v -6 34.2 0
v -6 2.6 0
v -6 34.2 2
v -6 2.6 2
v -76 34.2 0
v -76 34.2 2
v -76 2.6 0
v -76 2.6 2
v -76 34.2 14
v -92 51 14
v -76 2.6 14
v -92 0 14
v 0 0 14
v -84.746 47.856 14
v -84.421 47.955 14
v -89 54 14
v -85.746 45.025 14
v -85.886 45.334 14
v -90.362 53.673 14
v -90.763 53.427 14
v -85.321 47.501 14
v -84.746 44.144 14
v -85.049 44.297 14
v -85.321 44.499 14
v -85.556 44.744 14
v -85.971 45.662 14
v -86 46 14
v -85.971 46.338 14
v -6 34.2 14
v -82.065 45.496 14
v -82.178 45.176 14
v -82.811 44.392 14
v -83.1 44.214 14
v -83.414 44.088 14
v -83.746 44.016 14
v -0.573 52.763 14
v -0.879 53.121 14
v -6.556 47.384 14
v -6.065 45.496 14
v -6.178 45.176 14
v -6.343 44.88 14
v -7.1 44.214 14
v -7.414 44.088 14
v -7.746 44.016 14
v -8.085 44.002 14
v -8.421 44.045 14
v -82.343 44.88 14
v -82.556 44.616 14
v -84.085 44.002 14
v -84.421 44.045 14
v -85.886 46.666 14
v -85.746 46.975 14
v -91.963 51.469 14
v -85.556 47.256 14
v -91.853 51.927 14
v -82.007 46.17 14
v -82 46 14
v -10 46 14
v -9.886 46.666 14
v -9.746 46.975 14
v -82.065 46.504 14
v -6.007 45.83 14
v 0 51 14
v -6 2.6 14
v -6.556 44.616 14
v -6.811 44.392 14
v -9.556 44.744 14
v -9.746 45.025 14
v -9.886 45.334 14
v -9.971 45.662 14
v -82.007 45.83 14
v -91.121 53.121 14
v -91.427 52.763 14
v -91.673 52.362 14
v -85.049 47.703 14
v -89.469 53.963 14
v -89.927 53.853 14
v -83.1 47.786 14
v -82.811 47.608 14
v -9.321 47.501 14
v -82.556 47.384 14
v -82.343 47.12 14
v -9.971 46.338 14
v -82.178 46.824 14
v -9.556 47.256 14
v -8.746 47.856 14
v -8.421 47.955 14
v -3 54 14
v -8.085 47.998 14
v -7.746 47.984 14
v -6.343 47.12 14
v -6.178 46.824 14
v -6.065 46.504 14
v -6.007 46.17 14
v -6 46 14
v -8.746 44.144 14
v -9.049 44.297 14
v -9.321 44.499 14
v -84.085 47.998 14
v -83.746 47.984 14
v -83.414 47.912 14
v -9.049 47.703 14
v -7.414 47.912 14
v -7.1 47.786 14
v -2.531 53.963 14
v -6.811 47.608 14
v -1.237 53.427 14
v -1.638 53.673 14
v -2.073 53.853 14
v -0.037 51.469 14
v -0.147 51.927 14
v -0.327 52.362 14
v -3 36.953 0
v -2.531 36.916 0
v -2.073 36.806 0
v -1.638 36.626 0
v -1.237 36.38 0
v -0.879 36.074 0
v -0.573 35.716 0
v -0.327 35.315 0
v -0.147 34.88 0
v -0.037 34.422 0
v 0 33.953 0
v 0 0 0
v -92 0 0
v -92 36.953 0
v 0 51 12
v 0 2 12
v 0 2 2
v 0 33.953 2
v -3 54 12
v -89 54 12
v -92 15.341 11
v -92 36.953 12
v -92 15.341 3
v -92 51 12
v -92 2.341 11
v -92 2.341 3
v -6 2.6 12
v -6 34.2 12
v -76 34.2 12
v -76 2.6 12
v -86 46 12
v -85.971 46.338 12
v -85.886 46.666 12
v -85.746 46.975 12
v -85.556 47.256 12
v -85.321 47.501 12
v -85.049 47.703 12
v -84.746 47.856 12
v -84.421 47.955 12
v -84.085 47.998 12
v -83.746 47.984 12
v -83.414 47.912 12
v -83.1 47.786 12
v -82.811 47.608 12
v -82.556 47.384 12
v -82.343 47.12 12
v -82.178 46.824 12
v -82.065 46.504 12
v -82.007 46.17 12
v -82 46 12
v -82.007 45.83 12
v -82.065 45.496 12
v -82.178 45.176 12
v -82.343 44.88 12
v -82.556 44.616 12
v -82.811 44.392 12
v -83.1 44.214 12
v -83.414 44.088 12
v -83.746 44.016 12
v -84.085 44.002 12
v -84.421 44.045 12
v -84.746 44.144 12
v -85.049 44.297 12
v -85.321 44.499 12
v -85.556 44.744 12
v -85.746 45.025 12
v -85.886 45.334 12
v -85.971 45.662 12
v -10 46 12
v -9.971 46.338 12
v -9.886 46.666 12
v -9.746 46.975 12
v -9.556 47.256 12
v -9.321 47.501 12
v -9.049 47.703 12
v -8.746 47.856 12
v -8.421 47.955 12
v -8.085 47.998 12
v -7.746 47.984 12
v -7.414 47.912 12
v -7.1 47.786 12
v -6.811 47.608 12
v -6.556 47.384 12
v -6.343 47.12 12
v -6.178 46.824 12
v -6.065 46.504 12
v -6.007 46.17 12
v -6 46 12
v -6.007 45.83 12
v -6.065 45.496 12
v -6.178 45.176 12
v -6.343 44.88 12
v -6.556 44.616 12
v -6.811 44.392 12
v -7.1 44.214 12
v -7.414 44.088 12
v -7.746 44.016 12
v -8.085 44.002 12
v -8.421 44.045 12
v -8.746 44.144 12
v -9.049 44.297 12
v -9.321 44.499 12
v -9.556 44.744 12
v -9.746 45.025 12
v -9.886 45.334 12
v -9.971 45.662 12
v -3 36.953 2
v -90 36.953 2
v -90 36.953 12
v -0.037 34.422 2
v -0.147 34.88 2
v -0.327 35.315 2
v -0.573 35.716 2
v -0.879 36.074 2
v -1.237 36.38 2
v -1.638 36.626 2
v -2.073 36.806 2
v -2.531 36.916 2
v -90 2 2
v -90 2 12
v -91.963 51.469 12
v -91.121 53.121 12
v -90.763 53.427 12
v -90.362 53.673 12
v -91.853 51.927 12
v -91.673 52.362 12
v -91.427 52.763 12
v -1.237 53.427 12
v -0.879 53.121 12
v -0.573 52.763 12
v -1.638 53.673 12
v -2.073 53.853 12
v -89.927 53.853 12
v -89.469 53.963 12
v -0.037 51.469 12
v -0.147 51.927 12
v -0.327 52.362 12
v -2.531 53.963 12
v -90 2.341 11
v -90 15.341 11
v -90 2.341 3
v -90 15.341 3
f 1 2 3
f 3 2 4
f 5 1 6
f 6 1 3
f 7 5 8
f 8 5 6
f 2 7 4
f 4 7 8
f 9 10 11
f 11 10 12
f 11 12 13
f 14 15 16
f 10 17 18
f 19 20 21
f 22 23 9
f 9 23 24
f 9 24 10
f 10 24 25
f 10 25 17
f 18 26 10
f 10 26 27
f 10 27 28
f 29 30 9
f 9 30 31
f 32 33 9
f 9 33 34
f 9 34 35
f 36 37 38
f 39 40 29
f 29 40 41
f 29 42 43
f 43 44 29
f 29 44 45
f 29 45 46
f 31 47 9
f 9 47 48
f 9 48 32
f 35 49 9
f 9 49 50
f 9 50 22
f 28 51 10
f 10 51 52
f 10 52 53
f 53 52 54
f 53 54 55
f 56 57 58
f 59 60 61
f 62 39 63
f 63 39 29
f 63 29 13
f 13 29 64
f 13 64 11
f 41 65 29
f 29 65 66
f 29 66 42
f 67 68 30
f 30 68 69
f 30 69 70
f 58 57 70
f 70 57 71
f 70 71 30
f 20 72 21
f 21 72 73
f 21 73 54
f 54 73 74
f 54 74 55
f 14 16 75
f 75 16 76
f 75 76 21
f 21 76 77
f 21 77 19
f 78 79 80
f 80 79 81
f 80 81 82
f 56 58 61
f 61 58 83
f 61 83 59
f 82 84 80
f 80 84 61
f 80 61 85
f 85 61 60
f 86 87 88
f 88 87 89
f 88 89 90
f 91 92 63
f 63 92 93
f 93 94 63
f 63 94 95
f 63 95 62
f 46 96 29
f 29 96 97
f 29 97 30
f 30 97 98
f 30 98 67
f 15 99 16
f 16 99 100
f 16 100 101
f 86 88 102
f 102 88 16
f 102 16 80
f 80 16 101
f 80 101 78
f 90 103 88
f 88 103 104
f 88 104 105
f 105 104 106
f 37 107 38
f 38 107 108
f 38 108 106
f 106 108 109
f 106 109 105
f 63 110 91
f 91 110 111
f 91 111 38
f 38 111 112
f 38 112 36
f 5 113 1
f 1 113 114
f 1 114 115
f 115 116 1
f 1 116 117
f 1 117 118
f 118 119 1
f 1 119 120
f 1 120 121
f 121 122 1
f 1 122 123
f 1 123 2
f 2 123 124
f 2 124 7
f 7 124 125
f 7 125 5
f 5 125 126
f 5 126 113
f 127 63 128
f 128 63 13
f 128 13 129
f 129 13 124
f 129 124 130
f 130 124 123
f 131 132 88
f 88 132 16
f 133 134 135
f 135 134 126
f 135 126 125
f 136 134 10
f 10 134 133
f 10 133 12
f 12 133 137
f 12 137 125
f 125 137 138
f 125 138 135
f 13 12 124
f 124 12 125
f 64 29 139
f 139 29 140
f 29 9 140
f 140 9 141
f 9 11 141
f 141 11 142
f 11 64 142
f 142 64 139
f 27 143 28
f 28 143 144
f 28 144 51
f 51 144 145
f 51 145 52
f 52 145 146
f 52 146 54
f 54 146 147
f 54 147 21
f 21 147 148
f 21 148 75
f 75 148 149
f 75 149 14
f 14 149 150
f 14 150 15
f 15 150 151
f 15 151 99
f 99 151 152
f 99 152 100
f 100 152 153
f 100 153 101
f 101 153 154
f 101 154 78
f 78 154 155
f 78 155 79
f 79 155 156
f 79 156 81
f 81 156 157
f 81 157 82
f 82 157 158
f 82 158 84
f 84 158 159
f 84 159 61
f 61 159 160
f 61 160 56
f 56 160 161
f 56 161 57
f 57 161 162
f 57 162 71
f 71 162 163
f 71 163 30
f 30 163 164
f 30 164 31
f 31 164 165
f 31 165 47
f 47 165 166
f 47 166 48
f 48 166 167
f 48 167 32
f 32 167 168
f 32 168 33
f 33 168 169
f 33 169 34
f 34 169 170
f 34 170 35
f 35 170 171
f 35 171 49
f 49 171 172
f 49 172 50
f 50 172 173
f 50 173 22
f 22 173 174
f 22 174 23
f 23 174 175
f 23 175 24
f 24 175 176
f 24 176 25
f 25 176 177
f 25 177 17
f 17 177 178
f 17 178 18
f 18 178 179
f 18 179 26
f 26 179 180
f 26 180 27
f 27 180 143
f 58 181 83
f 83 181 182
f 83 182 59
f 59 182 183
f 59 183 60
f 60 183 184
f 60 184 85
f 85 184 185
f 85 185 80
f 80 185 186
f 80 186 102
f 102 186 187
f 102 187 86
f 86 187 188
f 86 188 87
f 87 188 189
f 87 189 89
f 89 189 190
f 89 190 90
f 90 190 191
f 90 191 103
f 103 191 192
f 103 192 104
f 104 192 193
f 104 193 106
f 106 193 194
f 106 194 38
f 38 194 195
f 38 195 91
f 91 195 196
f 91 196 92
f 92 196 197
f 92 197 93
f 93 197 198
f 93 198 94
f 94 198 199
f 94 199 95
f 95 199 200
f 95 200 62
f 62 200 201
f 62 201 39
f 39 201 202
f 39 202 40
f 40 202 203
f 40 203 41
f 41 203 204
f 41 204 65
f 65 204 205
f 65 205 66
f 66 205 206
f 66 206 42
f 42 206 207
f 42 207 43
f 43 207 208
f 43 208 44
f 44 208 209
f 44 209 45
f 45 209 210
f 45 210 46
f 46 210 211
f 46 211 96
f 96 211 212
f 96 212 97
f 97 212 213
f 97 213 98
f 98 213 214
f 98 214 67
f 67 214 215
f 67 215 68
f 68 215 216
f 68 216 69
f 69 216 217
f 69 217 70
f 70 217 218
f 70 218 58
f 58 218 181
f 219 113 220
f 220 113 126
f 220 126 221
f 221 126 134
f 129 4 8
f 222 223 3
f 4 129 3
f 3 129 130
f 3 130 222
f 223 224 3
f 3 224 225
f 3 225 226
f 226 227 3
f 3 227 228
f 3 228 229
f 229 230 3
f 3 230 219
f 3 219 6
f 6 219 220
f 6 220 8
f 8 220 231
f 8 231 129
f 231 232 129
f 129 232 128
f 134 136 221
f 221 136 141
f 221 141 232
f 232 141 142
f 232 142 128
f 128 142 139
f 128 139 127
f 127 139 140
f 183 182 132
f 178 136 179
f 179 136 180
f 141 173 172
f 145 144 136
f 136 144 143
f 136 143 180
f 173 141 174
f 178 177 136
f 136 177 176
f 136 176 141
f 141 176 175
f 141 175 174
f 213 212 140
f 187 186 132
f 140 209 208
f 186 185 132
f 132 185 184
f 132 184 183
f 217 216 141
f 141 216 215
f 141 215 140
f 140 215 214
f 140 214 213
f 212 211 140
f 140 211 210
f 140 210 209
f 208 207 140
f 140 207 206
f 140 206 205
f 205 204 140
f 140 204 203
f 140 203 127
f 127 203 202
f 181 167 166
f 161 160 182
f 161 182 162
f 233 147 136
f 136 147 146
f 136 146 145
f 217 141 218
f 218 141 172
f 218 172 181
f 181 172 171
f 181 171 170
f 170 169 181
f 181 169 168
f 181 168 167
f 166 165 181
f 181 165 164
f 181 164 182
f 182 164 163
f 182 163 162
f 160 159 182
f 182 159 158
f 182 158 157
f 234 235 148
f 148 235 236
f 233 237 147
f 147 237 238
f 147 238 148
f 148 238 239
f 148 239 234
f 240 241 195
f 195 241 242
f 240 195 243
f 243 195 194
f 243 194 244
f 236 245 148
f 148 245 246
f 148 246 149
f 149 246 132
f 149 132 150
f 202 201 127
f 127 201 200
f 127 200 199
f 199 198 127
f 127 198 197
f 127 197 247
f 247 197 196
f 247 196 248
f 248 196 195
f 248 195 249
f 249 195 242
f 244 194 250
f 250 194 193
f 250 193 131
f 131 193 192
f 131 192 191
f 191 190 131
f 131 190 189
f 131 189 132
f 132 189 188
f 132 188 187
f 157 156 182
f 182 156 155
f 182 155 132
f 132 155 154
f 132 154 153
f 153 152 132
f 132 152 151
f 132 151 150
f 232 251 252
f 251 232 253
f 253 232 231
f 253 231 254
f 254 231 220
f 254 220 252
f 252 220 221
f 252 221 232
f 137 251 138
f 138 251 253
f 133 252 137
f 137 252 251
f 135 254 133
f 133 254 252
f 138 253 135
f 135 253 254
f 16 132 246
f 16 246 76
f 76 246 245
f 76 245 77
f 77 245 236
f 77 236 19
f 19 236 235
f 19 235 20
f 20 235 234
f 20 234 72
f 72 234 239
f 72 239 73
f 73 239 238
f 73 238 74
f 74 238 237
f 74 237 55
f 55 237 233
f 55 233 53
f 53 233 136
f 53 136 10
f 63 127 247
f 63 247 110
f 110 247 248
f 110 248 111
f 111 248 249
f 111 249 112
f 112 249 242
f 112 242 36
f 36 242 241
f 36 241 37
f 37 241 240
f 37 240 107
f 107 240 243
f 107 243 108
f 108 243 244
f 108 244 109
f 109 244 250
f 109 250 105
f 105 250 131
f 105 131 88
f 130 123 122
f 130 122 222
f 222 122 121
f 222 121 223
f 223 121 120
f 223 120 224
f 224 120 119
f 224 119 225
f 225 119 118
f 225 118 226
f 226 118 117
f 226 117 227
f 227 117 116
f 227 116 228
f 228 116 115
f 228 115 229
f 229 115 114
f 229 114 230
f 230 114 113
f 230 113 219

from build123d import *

# Parameters (mm, degrees)
CROQUIS1_W              = 92
CROQUIS1_H              = 54
CROQUIS1_R              = 2
CROQUIS1_W_2            = 70
CROQUIS1_H_2            = 31.6
SALIENTE_EXTRUIR1_DEPTH = 14
CORTAR_EXTRUIR1_DEPTH   = 90
CROQUIS3_W              = 2
CROQUIS3_H              = 17.046925302
CORTAR_EXTRUIR2_DEPTH   = 12
CROQUIS4_W              = 8
CROQUIS4_H              = 13
CORTAR_EXTRUIR3_DEPTH   = 2
REDONDEO1_R             = 3
REDONDEO2_R             = 3
REDONDEO3_R             = 3


with BuildPart() as part:
    # Croquis1 → Saliente-Extruir1 (new body)
    with BuildSketch(Plane.XY):
        with Locations((-46, 27)):
            Rectangle(CROQUIS1_W, CROQUIS1_H)
        with Locations((-84, 46)):
            Circle(CROQUIS1_R, mode=Mode.SUBTRACT)
        with Locations((-8, 46)):
            Circle(CROQUIS1_R, mode=Mode.SUBTRACT)
        with Locations((-41, 18.4)):
            Rectangle(CROQUIS1_W_2, CROQUIS1_H_2, mode=Mode.SUBTRACT)
    extrude(amount=SALIENTE_EXTRUIR1_DEPTH)

    # Croquis2 → Cortar-Extruir1 (cut)
    with BuildSketch(Plane(origin=(0, 0, 0), x_dir=(0, 0, -1), z_dir=(1, 0, 0))):
        Polygon((-2, 36.953074698), (-2, 2), (-12, 2), (-12, 36.953074698), (-12, 54), (-2, 54), (0, 54), (0, 36.953074698), align=None)
    extrude(amount=-CORTAR_EXTRUIR1_DEPTH, mode=Mode.SUBTRACT)

    # Croquis3 → Cortar-Extruir2 (cut)
    with BuildSketch(Plane(origin=(0, 0, 0), x_dir=(-1, 0, 0), z_dir=(0, 0, -1))):
        with Locations((91, 45.476537349)):
            Rectangle(CROQUIS3_W, CROQUIS3_H)
    extrude(amount=-CORTAR_EXTRUIR2_DEPTH, mode=Mode.SUBTRACT)

    # Croquis4 → Cortar-Extruir3 (cut)
    with BuildSketch(Plane.ZY.offset(92)):
        with Locations((7, 8.840884816)):
            Rectangle(CROQUIS4_W, CROQUIS4_H)
    extrude(amount=-CORTAR_EXTRUIR3_DEPTH, mode=Mode.SUBTRACT)

    # Redondeo1
    redondeo1_edges = [part.edges().sort_by_distance(p)[0] for p in [
        (-92, 54, 13),
    ]]
    fillet(redondeo1_edges, radius=REDONDEO1_R)

    # Redondeo2
    redondeo2_edges = [part.edges().sort_by_distance(p)[0] for p in [
        (0, 54, 13),
    ]]
    fillet(redondeo2_edges, radius=REDONDEO2_R)

    # Redondeo3
    redondeo3_edges = [part.edges().sort_by_distance(p)[0] for p in [
        (0, 36.953074698, 1),
    ]]
    fillet(redondeo3_edges, radius=REDONDEO3_R)


solid = part.part
